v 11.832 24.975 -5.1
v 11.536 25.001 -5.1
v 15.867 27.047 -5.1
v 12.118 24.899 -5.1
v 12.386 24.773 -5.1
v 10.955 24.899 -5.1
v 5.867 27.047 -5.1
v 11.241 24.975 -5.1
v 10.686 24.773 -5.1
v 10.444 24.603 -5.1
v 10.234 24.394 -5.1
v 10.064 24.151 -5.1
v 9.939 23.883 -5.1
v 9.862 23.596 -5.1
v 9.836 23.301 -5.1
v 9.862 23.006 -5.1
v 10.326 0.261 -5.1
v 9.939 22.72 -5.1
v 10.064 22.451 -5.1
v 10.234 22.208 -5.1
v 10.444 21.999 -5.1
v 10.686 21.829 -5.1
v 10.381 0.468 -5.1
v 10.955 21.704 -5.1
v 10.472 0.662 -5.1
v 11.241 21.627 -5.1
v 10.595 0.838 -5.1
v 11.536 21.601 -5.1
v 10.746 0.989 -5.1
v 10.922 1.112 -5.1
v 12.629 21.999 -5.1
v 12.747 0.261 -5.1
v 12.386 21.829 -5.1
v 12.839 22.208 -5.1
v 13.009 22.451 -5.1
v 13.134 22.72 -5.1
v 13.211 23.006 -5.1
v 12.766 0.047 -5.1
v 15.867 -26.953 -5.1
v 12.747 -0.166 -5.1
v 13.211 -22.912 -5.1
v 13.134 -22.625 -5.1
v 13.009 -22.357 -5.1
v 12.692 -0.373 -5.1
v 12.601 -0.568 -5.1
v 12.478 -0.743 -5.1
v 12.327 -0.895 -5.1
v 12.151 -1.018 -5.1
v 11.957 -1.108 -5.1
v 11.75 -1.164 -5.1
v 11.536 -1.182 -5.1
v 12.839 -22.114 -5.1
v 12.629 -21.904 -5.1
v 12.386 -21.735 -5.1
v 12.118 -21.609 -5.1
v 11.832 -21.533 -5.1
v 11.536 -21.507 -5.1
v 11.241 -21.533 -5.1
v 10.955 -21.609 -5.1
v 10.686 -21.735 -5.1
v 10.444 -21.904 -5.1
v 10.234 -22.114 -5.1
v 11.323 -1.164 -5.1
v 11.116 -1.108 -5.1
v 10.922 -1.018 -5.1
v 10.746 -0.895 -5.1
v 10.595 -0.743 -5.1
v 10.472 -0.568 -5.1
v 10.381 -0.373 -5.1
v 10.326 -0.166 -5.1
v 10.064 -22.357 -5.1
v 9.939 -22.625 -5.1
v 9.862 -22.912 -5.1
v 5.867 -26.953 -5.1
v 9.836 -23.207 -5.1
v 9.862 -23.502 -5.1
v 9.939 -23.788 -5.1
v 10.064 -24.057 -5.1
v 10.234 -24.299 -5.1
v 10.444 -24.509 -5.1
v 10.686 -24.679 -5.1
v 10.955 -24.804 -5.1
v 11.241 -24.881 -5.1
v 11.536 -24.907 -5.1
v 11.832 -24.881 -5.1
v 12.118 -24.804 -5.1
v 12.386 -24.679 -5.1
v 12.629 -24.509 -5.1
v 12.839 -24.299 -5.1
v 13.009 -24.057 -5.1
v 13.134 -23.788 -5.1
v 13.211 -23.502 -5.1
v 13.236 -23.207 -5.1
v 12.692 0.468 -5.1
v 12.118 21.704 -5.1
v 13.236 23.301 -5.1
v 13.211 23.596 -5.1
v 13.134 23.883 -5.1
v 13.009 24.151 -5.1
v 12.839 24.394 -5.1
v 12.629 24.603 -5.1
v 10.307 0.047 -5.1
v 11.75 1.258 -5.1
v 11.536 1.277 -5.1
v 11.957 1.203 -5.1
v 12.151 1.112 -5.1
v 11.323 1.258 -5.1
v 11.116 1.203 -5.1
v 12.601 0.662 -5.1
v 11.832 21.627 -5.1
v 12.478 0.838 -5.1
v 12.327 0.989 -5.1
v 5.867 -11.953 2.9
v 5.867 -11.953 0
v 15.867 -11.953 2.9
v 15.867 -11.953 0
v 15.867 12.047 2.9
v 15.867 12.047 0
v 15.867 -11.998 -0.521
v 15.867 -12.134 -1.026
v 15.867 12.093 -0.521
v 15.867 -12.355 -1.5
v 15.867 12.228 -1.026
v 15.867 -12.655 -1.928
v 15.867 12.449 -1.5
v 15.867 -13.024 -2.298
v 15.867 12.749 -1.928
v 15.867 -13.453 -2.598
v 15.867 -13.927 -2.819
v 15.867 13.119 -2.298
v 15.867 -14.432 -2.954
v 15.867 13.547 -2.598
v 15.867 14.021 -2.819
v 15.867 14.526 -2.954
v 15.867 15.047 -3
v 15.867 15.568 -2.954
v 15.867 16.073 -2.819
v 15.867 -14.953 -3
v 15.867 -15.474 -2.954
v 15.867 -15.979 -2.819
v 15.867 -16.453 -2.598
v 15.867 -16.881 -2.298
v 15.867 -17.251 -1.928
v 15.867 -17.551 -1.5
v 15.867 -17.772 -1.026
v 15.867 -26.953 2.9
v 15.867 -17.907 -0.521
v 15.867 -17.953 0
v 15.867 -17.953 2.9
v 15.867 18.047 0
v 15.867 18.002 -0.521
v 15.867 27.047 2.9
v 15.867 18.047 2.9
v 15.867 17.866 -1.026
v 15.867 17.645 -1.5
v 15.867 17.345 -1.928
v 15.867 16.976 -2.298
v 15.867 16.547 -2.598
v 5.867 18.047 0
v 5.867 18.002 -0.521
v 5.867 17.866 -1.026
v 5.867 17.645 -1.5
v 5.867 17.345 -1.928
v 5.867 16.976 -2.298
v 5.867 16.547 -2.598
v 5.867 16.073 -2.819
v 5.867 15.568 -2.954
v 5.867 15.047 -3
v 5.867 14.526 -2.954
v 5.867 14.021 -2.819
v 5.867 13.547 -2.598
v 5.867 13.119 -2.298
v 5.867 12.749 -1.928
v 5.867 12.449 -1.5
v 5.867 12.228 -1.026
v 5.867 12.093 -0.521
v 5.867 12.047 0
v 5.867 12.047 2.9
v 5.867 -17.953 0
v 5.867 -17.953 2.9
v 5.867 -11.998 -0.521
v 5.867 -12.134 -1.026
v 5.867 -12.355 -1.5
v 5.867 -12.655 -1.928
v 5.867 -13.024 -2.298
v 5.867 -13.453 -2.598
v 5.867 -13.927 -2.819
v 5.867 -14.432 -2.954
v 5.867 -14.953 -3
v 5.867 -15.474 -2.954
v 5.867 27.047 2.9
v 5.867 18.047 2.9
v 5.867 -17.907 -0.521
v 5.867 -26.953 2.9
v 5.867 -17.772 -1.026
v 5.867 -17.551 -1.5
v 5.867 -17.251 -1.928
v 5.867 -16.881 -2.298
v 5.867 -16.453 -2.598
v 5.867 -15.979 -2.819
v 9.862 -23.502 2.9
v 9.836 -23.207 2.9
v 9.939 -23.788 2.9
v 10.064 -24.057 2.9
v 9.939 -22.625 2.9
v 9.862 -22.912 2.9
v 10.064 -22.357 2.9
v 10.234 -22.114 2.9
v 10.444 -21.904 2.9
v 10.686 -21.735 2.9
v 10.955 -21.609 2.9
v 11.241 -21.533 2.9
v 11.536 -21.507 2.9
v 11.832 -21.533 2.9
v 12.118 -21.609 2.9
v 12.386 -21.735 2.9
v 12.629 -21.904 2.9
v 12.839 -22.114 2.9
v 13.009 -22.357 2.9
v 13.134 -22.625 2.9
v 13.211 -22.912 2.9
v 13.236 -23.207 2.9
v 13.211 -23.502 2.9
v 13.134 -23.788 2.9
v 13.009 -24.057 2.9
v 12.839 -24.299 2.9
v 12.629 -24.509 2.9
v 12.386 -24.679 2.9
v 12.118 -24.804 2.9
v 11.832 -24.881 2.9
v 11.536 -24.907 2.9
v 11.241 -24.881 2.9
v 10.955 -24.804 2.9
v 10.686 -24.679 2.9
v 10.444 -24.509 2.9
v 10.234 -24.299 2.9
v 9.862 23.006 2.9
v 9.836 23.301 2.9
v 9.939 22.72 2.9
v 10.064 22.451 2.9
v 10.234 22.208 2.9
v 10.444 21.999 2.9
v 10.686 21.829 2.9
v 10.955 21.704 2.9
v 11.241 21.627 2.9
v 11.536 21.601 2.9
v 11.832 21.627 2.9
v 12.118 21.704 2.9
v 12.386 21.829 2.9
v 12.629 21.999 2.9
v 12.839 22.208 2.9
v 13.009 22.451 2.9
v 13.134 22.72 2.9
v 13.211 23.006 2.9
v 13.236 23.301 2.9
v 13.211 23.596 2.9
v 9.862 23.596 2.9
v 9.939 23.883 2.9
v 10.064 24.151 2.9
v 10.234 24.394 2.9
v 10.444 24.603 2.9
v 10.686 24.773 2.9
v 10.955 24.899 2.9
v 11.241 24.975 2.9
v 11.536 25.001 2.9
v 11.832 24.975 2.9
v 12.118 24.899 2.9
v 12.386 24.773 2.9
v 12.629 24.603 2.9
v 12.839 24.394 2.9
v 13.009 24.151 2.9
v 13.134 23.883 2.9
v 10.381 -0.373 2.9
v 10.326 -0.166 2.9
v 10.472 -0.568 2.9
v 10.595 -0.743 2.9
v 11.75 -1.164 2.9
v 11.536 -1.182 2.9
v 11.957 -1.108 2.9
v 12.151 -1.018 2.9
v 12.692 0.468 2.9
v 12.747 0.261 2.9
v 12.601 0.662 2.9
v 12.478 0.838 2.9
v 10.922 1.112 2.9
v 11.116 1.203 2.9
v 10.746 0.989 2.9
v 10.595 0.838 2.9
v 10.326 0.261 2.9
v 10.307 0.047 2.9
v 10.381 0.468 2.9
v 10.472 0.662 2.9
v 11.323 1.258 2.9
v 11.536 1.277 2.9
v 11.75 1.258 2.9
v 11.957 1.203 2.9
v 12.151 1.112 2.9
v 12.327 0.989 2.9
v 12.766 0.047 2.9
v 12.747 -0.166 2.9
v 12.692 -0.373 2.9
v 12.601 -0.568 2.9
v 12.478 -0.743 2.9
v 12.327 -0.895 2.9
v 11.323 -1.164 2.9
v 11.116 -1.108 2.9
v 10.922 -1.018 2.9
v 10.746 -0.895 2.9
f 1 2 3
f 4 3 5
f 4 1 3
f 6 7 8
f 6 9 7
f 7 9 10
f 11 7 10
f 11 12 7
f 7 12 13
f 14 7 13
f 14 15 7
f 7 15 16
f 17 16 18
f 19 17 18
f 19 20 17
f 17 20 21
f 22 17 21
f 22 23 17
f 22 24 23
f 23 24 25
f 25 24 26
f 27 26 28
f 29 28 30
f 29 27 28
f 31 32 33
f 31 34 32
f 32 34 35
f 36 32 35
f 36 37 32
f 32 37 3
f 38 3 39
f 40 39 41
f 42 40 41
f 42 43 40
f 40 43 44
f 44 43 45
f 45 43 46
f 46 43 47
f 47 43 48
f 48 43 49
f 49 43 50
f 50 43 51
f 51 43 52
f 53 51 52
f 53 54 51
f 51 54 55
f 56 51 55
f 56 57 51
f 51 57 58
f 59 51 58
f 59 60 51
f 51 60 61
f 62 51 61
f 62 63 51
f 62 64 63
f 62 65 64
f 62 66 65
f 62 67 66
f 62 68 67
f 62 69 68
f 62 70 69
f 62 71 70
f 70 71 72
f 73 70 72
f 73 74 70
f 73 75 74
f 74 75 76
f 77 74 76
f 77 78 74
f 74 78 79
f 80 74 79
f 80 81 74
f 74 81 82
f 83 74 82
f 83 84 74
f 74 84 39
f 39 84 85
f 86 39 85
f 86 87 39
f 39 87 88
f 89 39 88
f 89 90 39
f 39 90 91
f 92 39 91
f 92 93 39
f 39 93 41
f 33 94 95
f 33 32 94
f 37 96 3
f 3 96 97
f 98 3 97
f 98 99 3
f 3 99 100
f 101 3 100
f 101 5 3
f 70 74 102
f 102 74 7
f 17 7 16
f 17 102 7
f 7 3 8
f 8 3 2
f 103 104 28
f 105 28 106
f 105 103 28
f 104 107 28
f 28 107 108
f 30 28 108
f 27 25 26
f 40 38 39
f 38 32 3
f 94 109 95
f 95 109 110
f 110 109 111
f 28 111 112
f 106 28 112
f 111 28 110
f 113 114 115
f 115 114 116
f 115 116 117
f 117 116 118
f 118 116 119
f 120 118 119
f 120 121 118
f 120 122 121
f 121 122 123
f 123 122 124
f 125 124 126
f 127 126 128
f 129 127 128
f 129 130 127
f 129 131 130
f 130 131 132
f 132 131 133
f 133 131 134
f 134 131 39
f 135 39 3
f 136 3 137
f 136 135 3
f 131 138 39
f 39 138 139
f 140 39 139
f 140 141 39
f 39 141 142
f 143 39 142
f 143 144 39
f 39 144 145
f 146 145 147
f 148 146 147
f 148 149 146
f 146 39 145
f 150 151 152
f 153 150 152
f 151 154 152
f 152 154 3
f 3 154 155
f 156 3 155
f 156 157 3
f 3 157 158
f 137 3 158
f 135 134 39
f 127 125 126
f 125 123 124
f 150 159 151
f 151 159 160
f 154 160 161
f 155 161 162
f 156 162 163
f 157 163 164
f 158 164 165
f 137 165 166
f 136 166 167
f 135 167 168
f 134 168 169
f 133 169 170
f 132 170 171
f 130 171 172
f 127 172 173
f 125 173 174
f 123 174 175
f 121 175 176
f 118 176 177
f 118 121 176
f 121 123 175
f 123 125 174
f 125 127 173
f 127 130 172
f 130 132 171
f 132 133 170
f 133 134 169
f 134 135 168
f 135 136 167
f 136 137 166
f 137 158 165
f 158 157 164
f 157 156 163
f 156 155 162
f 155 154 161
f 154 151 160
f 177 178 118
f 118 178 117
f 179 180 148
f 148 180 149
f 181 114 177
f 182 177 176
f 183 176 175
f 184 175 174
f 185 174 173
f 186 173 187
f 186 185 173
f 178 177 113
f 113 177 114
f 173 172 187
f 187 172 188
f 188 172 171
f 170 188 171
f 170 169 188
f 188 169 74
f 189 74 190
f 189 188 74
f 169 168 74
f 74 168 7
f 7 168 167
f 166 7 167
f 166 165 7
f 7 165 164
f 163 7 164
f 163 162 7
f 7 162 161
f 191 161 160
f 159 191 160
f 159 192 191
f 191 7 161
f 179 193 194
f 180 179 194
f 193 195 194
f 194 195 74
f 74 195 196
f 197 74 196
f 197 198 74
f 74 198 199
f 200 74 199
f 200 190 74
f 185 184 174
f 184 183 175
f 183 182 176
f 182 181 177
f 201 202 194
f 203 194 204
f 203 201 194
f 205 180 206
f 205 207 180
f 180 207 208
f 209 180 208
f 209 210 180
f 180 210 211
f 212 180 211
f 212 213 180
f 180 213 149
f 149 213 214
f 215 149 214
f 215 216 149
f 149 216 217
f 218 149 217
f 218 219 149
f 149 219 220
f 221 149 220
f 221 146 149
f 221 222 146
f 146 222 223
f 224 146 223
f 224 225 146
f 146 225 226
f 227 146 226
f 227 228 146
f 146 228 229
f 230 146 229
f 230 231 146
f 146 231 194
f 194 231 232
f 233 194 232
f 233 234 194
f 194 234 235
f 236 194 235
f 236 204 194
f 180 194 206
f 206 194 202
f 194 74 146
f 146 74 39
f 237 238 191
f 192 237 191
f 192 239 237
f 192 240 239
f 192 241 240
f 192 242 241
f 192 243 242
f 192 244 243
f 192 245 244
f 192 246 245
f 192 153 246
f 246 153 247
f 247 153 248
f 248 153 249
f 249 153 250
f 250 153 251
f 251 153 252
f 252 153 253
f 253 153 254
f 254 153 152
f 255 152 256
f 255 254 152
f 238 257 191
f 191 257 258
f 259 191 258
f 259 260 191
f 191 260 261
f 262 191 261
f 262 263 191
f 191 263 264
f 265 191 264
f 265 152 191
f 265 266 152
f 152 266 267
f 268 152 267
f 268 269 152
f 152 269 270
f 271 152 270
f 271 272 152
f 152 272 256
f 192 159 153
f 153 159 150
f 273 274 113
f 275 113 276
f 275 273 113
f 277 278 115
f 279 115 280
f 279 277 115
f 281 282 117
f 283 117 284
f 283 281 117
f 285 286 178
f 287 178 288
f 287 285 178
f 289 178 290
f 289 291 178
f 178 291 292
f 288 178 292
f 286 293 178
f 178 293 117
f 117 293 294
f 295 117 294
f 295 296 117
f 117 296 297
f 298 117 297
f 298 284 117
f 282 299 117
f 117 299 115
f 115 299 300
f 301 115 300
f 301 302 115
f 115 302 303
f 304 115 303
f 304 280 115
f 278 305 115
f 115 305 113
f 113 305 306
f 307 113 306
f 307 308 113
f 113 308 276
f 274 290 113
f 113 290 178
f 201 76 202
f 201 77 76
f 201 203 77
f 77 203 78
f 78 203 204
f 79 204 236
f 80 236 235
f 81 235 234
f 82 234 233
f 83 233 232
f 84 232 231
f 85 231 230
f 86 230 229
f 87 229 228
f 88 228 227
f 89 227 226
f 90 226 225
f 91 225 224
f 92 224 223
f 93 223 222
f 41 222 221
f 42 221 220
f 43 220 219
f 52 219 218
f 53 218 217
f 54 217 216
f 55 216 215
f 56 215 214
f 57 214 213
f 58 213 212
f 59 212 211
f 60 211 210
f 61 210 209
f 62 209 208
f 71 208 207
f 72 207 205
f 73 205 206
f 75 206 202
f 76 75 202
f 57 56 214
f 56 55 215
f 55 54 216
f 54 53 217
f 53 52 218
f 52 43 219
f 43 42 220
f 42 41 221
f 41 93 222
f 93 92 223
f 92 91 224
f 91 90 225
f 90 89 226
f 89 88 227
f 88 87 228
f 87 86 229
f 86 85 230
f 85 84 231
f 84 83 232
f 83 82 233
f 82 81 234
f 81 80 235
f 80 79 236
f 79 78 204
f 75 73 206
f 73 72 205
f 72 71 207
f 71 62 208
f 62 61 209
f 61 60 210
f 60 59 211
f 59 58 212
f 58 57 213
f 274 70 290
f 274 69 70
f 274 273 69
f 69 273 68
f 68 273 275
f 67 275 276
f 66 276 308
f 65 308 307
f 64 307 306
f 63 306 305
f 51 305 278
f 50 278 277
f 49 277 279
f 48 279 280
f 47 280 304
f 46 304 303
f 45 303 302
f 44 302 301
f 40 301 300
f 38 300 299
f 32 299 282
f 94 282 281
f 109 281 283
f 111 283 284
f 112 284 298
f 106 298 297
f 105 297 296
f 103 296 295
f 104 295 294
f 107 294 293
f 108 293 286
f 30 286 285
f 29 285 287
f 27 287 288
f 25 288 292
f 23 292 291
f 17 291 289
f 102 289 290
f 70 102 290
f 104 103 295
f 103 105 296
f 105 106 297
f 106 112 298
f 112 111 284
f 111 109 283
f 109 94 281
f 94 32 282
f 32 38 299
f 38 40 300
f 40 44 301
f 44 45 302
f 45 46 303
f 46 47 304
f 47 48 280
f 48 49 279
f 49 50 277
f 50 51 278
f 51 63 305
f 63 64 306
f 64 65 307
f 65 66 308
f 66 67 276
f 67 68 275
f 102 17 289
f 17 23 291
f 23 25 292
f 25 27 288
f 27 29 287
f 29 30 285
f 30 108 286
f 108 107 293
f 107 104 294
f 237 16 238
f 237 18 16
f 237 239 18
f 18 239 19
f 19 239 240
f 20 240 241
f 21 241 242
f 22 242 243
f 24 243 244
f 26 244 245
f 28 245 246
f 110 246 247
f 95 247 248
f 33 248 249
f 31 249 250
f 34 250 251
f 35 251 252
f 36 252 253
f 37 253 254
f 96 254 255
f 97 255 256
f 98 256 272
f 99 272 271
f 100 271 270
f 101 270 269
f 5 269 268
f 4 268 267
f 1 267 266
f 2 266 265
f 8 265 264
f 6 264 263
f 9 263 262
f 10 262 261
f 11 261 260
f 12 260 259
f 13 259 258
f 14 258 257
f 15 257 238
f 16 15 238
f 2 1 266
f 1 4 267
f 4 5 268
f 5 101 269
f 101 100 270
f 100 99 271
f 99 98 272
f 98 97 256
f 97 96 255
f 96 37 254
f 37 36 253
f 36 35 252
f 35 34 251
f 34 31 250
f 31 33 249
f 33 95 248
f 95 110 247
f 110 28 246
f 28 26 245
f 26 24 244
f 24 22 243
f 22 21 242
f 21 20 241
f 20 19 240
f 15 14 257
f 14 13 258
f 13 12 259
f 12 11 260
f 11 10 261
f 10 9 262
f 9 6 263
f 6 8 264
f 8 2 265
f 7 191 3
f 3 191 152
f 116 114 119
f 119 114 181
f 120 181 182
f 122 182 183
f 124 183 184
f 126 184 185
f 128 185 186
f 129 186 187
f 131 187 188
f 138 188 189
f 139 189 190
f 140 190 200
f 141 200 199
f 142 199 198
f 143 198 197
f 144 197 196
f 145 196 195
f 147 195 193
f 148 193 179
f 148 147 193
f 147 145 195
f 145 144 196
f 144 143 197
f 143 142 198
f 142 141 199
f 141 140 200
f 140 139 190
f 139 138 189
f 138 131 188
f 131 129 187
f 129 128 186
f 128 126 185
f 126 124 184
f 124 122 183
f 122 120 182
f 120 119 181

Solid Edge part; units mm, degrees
sketch "Sketch1" plane through (5.8669, 0, 0) normal (1, 0, 0) x (0, 1, 0)
  arc A0 (-11.9528, 0) -> (-17.9528, 0) centre (-14.9528, 0) cw
  line L0 (-17.9528, 0) -> (-17.9528, 2.9)
  line L1 (-17.9528, 2.9) -> (-26.9528, 2.9)
  line L2 (-26.9528, 2.9) -> (-26.9528, -5.1)
  line L3 (-26.9528, -5.1) -> (27.0472, -5.1)
  line L4 (27.0472, -5.1) -> (27.0472, 2.9)
  line L5 (27.0472, 2.9) -> (18.0472, 2.9)
  line L6 (18.0472, 0) -> (18.0472, 2.9)
  arc A1 (18.0472, 0) -> (12.0472, 0) centre (15.0472, 0) cw
  line L7 (12.0472, 0) -> (12.0472, 2.9)
  line L8 (12.0472, 2.9) -> (-11.9528, 2.9)
  line L9 (-11.9528, 0) -> (-11.9528, 2.9)
  dimension "D1" = 8
extrude "Protrusion1" add sketch "Sketch1" along normal up to vertex (10 mm away)
sketch "Sketch2" plane through (10.8669, 0.0472, -5.1) normal (0, 0, -1) x (0, 1, 0)
  circle A0 centre (-23.254, 0.6696) radius 1.7
  circle A1 centre (0, 0.6696) radius 1.2295
  circle A2 centre (23.254, 0.6696) radius 1.7
extrude "Cutout1" cut sketch "Sketch2" against normal up to next
properties material "ABS Plastic, high impact"
